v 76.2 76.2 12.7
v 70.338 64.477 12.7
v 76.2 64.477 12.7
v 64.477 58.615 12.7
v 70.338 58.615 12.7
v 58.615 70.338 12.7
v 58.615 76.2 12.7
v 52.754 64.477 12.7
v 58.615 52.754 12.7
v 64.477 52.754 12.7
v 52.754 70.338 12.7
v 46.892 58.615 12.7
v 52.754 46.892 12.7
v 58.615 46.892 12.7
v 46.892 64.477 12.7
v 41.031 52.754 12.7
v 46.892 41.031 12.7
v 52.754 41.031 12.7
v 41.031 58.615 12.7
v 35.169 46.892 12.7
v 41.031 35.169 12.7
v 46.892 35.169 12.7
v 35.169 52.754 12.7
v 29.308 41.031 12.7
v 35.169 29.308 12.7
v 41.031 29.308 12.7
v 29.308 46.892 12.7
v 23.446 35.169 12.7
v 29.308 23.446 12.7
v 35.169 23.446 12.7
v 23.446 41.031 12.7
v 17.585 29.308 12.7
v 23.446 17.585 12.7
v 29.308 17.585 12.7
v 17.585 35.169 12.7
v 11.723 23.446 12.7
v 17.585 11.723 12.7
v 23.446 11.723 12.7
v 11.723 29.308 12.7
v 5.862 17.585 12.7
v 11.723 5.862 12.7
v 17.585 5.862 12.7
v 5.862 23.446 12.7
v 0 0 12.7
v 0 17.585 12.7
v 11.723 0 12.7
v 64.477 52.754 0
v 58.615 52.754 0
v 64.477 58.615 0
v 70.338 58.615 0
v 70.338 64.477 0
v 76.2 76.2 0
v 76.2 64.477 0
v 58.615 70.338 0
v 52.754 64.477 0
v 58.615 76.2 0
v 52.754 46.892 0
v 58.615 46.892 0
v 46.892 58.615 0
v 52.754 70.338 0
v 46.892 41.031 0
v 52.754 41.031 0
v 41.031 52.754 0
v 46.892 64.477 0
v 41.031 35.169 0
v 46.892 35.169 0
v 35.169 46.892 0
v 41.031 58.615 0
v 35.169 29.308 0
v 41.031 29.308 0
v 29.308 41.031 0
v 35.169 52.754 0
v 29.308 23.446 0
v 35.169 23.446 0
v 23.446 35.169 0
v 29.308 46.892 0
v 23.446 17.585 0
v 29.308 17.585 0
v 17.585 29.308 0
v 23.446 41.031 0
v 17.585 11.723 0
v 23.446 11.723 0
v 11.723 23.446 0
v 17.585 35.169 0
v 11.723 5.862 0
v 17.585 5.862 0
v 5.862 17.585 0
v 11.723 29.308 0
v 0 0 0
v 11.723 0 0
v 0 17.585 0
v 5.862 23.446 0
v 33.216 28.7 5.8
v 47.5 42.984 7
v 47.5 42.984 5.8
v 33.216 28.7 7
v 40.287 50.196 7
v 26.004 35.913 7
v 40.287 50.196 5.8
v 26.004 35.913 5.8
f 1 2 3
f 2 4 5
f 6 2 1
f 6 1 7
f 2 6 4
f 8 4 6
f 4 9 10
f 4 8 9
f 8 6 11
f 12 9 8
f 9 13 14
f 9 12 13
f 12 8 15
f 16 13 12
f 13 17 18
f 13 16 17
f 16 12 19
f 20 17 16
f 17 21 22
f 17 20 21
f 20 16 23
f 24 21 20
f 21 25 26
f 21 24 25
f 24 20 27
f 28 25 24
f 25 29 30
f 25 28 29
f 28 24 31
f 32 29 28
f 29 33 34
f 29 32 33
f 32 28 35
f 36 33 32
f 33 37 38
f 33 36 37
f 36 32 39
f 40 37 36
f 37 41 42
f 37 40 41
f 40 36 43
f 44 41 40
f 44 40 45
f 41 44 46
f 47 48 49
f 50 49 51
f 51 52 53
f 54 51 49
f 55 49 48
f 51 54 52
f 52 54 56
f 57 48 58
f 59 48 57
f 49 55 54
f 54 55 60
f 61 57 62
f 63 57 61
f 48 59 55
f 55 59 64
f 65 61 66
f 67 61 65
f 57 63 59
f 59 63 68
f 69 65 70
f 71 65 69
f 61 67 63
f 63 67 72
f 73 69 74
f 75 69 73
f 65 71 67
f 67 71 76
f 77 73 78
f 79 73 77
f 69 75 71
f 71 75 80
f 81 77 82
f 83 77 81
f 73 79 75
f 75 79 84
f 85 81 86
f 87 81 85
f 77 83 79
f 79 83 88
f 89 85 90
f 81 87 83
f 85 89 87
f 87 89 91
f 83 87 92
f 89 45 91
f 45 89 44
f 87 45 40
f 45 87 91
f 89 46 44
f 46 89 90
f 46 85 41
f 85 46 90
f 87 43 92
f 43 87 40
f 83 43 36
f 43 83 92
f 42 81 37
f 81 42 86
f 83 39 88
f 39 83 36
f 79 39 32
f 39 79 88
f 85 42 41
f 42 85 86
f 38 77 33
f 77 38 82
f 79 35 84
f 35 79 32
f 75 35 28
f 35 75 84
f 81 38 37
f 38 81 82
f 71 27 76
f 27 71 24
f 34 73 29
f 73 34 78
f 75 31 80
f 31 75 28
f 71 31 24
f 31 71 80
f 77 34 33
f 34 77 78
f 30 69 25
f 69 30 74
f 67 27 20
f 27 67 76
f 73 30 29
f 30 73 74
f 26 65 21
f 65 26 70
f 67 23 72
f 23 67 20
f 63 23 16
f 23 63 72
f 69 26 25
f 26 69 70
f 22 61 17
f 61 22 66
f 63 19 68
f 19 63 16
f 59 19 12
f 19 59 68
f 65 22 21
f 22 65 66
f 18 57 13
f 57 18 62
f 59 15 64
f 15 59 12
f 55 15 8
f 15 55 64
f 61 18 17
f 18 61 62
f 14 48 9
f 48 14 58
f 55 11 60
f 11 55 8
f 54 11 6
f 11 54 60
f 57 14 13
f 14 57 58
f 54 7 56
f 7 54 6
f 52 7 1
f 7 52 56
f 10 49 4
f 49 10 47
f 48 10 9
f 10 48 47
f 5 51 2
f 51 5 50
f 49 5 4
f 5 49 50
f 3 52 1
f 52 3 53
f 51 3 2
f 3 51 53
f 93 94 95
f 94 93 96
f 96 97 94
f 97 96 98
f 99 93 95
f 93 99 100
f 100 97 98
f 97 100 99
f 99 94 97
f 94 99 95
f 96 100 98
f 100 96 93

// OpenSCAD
// stick (double-wide) — Minecraft Item Shape 3D Model
// Based on stick.png but widened to 5 pixels across for RFID cavity clearance
//
// Open in OpenSCAD → F5 preview → F6 render → F7 export STL

// ============================================================
// PARAMETERS
// ============================================================

GRID_SIZE_IN    = 3.0;           // crafting table slot size
PIXELS          = 13;            // grid divisions (shape-fitted)
PIXEL_MM        = (GRID_SIZE_IN * 25.4) / PIXELS;  // mm per pixel (~5.86mm)

DEPTH_IN        = 0.5;          // extrusion depth in inches
DEPTH_MM        = DEPTH_IN * 25.4;

// NFC tag — small rectangular RFID sensor (10mm × 20mm)
// Rotated 45° to align with the stick's diagonal axis.
// 4-pixel-wide stick (~23.4mm perpendicular to grid).
// Perpendicular to diagonal axis: 4 * 5.86 * sin(45°) ≈ 16.6mm
// Cavity rotated 45° needs ~10.6mm width → leaves ~3mm wall per side.
TAG_WIDTH       = 10;           // mm (short side)
TAG_LENGTH      = 20;           // mm (long side)
TAG_THICKNESS   = 1.0;         // mm
TAG_CLEARANCE   = 0.1;         // mm extra around tag

cavity_w = TAG_WIDTH + TAG_CLEARANCE * 2;
cavity_l = TAG_LENGTH + TAG_CLEARANCE * 2;
cavity_h = TAG_THICKNESS + TAG_CLEARANCE;

echo(str("Pixel size: ", PIXEL_MM, "mm"));
echo(str("Footprint: ", PIXELS * PIXEL_MM, "mm = ", GRID_SIZE_IN, " in"));
echo(str("Depth: ", DEPTH_MM, "mm = ", DEPTH_IN, " in"));
echo(str("Tag cavity: ", cavity_w, "mm × ", cavity_l, "mm × ", cavity_h, "mm deep (rotated 45°)"));
echo(str("PAUSE AT: ", DEPTH_MM / 2 + cavity_h / 2, "mm to insert tag"));

module tag_cavity() {
    // True centroid of the 4-wide stick shape
    cx = 6.27 * PIXEL_MM;
    cy = 6.73 * PIXEL_MM;
    translate([cx, cy, DEPTH_MM / 2 - cavity_h / 2])
        rotate([0, 0, -45])
            translate([-cavity_w / 2, -cavity_l / 2, 0])
                cube([cavity_w, cavity_l, cavity_h + 0.1]);
}

module tag_shelf() {
    cx = 6.27 * PIXEL_MM;
    cy = 6.73 * PIXEL_MM;
    translate([cx, cy, DEPTH_MM / 2 - cavity_h / 2 - 1.0])
        rotate([0, 0, -45])
            translate([-(cavity_w + 4) / 2, -(cavity_l + 4) / 2, 0])
                cube([cavity_w + 4, cavity_l + 4, 1.0]);
}

// ============================================================
// PIXEL MAP — 4-pixel-wide stick (1 pixel added to one side of original 3-wide)
// Original stick runs from (0,11) to (12,0) at 3px wide.
// This version adds 1 pixel on one side of the original band.
// ============================================================

item_pixels = [
    // Bottom-left end
    [0.0,10.0], [0.0,11.0], [0.0,12.0],
    [1.0,9.0], [1.0,10.0], [1.0,11.0], [1.0,12.0],

    // Middle sections: original 3 wide + 1 extra = 4 wide
    [2.0,8.0], [2.0,9.0], [2.0,10.0], [2.0,11.0],
    [3.0,7.0], [3.0,8.0], [3.0,9.0], [3.0,10.0],
    [4.0,6.0], [4.0,7.0], [4.0,8.0], [4.0,9.0],
    [5.0,5.0], [5.0,6.0], [5.0,7.0], [5.0,8.0],
    [6.0,4.0], [6.0,5.0], [6.0,6.0], [6.0,7.0],
    [7.0,3.0], [7.0,4.0], [7.0,5.0], [7.0,6.0],
    [8.0,2.0], [8.0,3.0], [8.0,4.0], [8.0,5.0],
    [9.0,1.0], [9.0,2.0], [9.0,3.0], [9.0,4.0],
    [10.0,0.0], [10.0,1.0], [10.0,2.0], [10.0,3.0],

    // Top-right end
    [11.0,0.0], [11.0,1.0], [11.0,2.0],
    [12.0,0.0], [12.0,1.0]
];

// ============================================================
// MODULES
// ============================================================

module pixel_block(col, row) {
    translate([col * PIXEL_MM, (PIXELS - 1 - row) * PIXEL_MM, 0])
        cube([PIXEL_MM, PIXEL_MM, DEPTH_MM]);
}

module item_shape() {
    for (i = [0 : len(item_pixels) - 1])
        pixel_block(item_pixels[i][0], item_pixels[i][1]);
}

module item_final() {
    difference() {
        union() {
            item_shape();
            intersection() {
                item_shape();
                tag_shelf();
            }
        }
        tag_cavity();
    }
}

item_final();

// Cross-section view (uncomment to see tag cavity):
// difference() {
//     item_final();
//     translate([6.5 * PIXEL_MM, -50, -1])
//         cube([100, 200, 100]);
// }
